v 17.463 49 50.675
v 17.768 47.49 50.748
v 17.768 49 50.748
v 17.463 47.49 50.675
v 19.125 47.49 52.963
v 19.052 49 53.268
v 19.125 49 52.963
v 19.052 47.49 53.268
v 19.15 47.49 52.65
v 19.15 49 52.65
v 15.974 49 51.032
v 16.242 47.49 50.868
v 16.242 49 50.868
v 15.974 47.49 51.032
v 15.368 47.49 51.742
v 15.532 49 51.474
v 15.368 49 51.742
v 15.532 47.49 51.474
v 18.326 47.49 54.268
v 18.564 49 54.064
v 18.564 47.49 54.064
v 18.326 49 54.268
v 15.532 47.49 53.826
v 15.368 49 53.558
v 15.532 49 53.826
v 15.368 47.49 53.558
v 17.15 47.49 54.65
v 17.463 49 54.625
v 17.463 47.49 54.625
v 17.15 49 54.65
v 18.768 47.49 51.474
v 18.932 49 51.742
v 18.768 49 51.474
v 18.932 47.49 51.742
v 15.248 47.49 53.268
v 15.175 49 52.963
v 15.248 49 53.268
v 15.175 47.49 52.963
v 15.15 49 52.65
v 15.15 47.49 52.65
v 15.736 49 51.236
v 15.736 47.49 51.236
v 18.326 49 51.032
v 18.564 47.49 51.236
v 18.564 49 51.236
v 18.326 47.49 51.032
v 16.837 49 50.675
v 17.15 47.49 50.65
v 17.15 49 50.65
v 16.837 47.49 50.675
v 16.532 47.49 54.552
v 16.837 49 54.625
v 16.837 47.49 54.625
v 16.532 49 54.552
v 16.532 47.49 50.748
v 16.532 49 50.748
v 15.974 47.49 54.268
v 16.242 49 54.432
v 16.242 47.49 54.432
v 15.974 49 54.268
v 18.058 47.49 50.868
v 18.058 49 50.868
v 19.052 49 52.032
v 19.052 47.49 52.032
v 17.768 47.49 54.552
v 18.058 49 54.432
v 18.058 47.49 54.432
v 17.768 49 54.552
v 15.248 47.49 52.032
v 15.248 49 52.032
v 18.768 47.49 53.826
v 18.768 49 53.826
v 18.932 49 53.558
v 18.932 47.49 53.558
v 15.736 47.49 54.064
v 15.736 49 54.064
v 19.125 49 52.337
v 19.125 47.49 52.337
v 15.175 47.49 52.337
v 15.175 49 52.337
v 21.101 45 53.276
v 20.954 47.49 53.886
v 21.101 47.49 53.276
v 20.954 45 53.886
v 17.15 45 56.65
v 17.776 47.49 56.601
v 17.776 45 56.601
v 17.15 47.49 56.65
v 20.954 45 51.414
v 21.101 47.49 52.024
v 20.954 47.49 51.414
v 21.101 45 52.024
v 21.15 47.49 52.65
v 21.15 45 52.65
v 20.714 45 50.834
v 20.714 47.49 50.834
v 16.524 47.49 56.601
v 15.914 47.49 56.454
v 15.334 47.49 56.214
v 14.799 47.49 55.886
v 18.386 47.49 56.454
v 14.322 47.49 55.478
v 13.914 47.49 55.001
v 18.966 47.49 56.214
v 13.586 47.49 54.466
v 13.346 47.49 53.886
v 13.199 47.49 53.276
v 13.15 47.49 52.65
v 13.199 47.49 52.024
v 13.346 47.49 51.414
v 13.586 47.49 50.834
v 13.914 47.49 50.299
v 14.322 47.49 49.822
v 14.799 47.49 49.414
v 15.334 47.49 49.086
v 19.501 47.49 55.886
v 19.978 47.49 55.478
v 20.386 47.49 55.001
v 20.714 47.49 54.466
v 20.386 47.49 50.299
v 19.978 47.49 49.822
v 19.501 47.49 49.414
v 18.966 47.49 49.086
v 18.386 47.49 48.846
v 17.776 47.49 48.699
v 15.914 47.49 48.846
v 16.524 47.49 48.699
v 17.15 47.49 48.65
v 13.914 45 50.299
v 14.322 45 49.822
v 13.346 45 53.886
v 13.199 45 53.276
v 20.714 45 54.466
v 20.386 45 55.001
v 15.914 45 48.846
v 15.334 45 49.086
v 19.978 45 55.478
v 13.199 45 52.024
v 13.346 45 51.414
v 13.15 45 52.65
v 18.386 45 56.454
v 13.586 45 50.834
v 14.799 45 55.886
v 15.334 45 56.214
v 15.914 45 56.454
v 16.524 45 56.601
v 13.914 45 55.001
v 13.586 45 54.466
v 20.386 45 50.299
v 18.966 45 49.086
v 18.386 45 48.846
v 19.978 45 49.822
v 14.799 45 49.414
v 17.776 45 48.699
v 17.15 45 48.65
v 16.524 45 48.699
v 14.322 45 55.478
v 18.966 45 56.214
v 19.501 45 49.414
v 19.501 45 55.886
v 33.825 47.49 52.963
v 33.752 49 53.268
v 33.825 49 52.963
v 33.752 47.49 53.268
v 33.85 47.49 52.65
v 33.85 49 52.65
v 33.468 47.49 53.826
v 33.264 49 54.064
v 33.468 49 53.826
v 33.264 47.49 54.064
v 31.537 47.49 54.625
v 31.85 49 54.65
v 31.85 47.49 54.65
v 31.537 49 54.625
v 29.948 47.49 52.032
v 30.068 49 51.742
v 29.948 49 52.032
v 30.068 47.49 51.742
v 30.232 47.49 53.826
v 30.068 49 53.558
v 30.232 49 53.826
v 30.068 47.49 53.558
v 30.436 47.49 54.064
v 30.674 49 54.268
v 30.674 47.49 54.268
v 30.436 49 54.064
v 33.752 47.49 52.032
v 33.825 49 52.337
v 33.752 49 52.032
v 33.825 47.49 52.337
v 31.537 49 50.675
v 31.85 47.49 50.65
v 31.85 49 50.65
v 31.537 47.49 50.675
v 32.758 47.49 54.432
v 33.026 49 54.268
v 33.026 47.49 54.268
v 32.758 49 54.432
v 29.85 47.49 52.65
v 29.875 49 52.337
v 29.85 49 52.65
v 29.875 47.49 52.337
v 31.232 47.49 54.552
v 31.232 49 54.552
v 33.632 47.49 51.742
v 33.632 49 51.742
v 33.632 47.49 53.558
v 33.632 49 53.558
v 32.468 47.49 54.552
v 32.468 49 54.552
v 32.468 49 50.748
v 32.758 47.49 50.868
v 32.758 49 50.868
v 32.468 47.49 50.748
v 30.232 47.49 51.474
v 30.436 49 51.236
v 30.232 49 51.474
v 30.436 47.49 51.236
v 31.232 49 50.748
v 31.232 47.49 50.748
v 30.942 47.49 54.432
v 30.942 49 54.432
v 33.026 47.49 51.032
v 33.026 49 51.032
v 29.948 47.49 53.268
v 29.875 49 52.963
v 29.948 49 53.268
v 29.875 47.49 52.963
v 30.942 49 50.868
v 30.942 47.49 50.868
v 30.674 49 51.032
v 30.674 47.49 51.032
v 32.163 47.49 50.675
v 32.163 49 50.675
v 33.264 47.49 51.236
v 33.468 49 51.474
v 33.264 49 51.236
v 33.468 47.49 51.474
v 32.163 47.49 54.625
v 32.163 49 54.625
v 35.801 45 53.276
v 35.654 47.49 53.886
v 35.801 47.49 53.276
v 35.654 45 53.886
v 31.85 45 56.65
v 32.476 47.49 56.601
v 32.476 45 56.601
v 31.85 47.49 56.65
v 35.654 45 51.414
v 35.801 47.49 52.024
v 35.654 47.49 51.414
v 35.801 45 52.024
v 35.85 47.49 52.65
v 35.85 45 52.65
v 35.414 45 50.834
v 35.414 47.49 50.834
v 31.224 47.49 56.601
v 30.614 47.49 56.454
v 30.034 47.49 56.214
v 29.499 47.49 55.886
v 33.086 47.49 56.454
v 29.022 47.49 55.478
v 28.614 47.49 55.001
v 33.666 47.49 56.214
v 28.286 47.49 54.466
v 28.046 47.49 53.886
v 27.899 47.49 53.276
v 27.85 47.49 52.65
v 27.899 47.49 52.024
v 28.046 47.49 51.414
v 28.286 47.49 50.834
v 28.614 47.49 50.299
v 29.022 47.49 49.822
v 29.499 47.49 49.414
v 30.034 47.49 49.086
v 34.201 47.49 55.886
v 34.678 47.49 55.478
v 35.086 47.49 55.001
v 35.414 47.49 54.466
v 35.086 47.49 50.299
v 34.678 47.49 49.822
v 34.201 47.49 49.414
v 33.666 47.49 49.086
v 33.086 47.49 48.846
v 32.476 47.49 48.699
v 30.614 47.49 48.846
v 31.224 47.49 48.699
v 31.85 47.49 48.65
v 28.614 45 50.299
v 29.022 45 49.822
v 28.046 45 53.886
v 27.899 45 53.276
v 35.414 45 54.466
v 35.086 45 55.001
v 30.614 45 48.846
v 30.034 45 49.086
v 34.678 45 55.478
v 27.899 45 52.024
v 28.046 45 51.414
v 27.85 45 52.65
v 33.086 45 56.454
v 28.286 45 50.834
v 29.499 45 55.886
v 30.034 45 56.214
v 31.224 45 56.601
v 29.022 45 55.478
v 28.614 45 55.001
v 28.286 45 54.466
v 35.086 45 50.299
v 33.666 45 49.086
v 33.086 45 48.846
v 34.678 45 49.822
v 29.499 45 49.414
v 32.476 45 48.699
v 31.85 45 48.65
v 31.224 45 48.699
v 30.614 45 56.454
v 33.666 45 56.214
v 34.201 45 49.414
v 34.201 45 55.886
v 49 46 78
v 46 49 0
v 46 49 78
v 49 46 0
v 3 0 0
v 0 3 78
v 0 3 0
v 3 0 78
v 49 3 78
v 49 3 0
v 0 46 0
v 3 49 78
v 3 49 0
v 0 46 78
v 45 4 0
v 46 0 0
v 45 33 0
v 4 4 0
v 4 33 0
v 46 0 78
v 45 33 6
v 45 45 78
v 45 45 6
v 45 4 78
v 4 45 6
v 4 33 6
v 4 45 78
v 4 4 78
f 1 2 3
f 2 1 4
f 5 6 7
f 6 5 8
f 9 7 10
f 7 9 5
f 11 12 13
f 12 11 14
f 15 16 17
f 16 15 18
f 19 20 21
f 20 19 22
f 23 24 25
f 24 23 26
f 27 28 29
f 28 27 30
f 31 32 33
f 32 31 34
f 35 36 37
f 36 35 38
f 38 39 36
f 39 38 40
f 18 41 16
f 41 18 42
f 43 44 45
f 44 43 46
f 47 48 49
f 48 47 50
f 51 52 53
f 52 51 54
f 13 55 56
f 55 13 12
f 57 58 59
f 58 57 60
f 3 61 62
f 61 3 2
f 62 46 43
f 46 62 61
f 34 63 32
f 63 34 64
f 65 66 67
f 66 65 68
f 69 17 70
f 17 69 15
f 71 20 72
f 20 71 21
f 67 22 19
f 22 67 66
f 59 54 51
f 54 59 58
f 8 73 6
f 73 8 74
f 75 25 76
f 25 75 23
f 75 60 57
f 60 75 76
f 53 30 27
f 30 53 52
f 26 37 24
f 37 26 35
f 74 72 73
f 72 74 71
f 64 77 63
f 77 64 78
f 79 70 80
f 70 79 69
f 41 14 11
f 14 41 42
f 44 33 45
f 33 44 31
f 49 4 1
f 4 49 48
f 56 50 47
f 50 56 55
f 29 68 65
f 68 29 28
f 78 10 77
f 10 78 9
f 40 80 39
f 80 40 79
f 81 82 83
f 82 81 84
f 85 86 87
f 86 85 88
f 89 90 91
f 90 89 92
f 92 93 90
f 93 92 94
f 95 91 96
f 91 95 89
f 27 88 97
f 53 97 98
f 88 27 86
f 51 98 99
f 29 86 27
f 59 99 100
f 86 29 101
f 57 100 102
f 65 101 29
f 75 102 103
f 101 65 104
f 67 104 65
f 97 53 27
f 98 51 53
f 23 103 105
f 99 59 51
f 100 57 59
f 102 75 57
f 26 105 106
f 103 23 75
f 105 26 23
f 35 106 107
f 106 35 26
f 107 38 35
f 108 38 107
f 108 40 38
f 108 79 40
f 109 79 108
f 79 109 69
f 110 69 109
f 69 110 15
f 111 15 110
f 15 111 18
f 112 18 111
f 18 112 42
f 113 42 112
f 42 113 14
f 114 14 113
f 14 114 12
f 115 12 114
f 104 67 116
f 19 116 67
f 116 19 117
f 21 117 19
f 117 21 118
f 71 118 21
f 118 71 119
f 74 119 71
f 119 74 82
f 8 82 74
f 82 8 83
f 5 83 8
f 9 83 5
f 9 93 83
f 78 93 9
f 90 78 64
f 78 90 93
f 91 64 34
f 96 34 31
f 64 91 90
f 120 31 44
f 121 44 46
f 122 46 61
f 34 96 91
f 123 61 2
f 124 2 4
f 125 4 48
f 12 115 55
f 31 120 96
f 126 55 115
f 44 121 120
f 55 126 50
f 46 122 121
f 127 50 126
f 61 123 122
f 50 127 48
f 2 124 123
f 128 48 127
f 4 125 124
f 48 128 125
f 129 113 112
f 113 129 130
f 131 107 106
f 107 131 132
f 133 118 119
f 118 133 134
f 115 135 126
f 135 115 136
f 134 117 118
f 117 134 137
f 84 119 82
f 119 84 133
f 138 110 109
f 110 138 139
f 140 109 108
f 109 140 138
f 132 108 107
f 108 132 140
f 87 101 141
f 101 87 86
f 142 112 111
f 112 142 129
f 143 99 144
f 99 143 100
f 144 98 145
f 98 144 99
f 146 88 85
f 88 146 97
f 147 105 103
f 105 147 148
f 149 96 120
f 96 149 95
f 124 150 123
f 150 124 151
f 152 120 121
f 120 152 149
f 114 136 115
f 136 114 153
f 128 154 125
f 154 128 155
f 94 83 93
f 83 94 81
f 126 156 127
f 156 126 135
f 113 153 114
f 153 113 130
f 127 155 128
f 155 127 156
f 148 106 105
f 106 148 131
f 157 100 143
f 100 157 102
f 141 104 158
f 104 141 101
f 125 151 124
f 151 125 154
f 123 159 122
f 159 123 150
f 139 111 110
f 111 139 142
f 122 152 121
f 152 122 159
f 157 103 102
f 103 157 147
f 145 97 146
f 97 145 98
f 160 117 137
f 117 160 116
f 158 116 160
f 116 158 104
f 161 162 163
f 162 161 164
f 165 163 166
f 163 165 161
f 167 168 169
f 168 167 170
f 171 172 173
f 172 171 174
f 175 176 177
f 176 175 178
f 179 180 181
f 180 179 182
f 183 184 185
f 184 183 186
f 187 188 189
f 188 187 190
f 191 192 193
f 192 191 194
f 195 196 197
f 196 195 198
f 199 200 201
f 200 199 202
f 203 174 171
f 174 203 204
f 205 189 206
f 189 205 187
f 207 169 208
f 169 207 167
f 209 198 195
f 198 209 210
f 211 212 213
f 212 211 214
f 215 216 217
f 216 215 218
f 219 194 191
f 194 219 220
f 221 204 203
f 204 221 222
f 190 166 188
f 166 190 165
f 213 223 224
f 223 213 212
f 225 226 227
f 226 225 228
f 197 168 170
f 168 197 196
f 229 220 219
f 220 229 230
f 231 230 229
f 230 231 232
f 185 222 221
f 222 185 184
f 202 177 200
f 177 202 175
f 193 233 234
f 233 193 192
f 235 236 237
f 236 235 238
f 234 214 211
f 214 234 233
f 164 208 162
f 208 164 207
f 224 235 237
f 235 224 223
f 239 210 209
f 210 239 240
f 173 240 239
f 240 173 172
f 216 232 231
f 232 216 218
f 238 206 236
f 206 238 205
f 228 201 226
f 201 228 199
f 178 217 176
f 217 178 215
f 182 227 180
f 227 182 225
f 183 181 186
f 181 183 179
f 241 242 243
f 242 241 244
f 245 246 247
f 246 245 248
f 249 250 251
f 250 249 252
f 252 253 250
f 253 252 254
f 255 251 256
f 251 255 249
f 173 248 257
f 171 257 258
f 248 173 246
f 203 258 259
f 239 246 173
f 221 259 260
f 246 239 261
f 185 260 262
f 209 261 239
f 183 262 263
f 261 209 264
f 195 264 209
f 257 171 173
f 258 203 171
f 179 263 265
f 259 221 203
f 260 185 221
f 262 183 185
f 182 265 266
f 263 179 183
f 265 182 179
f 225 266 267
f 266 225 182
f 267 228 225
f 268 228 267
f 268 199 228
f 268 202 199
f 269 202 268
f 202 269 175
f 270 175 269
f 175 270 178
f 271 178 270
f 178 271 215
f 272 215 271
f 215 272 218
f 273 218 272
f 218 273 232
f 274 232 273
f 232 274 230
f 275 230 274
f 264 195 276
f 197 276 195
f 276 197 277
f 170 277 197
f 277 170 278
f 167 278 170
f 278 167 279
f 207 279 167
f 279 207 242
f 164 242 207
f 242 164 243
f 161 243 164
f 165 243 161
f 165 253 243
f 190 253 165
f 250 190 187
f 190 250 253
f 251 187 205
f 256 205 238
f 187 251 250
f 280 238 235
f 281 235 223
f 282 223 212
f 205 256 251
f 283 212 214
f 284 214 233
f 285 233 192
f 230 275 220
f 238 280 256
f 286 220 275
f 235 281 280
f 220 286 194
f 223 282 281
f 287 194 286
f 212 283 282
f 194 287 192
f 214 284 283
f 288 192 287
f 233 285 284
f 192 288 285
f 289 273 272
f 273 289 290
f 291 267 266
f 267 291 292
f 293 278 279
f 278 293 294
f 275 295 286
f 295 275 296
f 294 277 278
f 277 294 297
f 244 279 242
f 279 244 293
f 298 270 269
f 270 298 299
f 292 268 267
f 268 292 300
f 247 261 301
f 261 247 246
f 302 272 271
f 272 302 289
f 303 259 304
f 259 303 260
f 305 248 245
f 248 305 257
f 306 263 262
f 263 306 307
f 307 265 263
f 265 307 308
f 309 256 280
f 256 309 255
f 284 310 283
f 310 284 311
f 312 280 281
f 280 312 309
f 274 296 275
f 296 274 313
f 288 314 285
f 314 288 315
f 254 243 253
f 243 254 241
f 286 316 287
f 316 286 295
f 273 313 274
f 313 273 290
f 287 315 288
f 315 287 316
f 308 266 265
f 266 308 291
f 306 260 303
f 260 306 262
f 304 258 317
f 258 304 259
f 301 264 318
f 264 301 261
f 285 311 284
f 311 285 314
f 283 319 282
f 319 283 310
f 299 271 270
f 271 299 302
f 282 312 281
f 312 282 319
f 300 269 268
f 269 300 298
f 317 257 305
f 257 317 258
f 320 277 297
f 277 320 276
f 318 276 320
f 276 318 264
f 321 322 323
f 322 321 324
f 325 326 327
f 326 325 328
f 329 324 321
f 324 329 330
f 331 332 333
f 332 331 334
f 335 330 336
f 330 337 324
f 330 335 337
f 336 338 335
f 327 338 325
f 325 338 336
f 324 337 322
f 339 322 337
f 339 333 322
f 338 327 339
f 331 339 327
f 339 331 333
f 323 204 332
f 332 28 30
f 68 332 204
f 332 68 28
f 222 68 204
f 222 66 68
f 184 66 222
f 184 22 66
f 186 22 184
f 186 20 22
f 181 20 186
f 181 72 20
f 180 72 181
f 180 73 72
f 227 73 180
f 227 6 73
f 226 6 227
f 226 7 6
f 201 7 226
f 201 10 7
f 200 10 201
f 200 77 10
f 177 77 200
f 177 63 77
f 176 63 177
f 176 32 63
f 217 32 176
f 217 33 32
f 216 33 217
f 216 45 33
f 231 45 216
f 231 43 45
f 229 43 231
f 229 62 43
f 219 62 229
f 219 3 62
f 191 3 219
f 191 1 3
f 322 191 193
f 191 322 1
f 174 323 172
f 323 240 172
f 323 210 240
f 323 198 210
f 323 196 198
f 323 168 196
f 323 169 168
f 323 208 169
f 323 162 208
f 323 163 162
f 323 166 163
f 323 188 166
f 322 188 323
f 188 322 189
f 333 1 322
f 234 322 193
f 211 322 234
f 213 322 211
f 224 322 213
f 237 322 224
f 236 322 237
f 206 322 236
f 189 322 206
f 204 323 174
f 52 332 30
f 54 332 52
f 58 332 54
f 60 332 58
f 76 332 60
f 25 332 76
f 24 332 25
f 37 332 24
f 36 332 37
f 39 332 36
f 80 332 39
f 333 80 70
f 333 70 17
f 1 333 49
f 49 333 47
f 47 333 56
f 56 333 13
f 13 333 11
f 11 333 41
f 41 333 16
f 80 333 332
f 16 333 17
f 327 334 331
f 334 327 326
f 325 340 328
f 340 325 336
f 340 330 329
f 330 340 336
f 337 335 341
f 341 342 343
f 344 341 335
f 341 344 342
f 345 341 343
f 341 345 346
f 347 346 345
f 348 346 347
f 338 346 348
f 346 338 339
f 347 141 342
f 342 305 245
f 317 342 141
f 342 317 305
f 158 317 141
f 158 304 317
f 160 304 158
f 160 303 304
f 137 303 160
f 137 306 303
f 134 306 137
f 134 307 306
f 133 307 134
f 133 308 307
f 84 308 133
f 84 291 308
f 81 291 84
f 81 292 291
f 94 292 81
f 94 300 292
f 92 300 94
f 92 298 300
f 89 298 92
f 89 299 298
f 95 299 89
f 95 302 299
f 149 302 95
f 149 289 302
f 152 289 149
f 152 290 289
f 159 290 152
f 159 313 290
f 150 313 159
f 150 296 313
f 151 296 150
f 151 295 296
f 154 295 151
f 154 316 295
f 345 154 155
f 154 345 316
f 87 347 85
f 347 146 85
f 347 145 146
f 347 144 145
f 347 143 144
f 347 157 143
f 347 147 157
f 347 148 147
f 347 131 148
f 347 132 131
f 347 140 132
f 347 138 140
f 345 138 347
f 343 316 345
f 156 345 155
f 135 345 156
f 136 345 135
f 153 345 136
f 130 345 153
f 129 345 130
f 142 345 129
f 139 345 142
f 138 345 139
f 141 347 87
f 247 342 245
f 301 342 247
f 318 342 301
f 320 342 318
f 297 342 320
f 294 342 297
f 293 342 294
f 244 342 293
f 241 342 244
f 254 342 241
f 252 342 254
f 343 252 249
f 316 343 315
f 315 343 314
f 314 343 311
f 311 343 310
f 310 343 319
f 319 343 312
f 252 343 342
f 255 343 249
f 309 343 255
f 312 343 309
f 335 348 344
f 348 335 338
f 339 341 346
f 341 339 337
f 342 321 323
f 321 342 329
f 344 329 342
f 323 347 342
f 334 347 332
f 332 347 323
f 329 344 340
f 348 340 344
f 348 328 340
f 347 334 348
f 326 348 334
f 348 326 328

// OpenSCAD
// =====================================================
// Spigen PD2101 – Vertical Charger Mount
// =====================================================

// ---------------- Charger ----------------
charger_w = 40.4;
charger_d = 40.4;
charger_h = 75.0;
tolerance = 0.6;

// ---------------- Geometry ----------------
wall        = 4;
lip_height  = 6;
lip_depth   = 12;
chamfer     = 3;

// ---------------- Screws ----------------
screw_d = 4;
head_d  = 8;
head_h  = 2.5;

// ---------------- Derived ----------------
inner_w = charger_w + tolerance;
inner_d = charger_d + tolerance;
inner_h = charger_h;

outer_w = inner_w + wall * 2;
outer_d = inner_d + wall * 2;
outer_h = inner_h + lip_height;

// =====================================================
// Chamfered footprint (vertical edge chamfers)
// =====================================================
module chamfer_rect(w, d, c) {
    polygon([
        [ c, 0 ],
        [ w-c, 0 ],
        [ w, c ],
        [ w, d-c ],
        [ w-c, d ],
        [ c, d ],
        [ 0, d-c ],
        [ 0, c ]
    ]);
}

// =====================================================
// MODEL
// =====================================================
difference() {

    // ---------- OUTER BODY ----------
    linear_extrude(height = outer_h)
        chamfer_rect(outer_w, outer_d, chamfer);

    // ---------- INNER CAVITY ----------
    translate([wall, wall, lip_height])
        cube([inner_w, inner_d, inner_h + 1]);

    // ---------- OPEN BOTTOM (KEEP LIP) ----------
    translate([wall, wall, -1])
        cube([inner_w, inner_d - lip_depth, lip_height + 2]);

    // ---------- TOP CHAMFER ----------
    translate([-1, -1, outer_h - chamfer])
        cube([outer_w + 2, outer_d + 2, chamfer + 1]);

    // ---------- SCREW HOLES (BACK WALL ONLY) ----------
    for (x = [0.35, 0.65]) {

        // Through hole: OUTSIDE -> INSIDE (only wall thickness)
        translate([outer_w * x, outer_d + 0.01, outer_h * 0.65])
            rotate([90,0,0])
                cylinder(
                    d = screw_d,
                    h = wall + 0.5,
                    $fn = 40
                );

        // Counterbore: INSIDE -> OUTSIDE
        translate([outer_w * x, outer_d - wall - 0.01, outer_h * 0.65])
            rotate([-90,0,0])
                cylinder(
                    d = head_d,
                    h = head_h,
                    $fn = 40
                );
    }
}

// ---------- INTERNAL SUPPORT LIP ----------
translate([wall, outer_d - wall - lip_depth, 0])
    cube([inner_w, lip_depth, lip_height]);
